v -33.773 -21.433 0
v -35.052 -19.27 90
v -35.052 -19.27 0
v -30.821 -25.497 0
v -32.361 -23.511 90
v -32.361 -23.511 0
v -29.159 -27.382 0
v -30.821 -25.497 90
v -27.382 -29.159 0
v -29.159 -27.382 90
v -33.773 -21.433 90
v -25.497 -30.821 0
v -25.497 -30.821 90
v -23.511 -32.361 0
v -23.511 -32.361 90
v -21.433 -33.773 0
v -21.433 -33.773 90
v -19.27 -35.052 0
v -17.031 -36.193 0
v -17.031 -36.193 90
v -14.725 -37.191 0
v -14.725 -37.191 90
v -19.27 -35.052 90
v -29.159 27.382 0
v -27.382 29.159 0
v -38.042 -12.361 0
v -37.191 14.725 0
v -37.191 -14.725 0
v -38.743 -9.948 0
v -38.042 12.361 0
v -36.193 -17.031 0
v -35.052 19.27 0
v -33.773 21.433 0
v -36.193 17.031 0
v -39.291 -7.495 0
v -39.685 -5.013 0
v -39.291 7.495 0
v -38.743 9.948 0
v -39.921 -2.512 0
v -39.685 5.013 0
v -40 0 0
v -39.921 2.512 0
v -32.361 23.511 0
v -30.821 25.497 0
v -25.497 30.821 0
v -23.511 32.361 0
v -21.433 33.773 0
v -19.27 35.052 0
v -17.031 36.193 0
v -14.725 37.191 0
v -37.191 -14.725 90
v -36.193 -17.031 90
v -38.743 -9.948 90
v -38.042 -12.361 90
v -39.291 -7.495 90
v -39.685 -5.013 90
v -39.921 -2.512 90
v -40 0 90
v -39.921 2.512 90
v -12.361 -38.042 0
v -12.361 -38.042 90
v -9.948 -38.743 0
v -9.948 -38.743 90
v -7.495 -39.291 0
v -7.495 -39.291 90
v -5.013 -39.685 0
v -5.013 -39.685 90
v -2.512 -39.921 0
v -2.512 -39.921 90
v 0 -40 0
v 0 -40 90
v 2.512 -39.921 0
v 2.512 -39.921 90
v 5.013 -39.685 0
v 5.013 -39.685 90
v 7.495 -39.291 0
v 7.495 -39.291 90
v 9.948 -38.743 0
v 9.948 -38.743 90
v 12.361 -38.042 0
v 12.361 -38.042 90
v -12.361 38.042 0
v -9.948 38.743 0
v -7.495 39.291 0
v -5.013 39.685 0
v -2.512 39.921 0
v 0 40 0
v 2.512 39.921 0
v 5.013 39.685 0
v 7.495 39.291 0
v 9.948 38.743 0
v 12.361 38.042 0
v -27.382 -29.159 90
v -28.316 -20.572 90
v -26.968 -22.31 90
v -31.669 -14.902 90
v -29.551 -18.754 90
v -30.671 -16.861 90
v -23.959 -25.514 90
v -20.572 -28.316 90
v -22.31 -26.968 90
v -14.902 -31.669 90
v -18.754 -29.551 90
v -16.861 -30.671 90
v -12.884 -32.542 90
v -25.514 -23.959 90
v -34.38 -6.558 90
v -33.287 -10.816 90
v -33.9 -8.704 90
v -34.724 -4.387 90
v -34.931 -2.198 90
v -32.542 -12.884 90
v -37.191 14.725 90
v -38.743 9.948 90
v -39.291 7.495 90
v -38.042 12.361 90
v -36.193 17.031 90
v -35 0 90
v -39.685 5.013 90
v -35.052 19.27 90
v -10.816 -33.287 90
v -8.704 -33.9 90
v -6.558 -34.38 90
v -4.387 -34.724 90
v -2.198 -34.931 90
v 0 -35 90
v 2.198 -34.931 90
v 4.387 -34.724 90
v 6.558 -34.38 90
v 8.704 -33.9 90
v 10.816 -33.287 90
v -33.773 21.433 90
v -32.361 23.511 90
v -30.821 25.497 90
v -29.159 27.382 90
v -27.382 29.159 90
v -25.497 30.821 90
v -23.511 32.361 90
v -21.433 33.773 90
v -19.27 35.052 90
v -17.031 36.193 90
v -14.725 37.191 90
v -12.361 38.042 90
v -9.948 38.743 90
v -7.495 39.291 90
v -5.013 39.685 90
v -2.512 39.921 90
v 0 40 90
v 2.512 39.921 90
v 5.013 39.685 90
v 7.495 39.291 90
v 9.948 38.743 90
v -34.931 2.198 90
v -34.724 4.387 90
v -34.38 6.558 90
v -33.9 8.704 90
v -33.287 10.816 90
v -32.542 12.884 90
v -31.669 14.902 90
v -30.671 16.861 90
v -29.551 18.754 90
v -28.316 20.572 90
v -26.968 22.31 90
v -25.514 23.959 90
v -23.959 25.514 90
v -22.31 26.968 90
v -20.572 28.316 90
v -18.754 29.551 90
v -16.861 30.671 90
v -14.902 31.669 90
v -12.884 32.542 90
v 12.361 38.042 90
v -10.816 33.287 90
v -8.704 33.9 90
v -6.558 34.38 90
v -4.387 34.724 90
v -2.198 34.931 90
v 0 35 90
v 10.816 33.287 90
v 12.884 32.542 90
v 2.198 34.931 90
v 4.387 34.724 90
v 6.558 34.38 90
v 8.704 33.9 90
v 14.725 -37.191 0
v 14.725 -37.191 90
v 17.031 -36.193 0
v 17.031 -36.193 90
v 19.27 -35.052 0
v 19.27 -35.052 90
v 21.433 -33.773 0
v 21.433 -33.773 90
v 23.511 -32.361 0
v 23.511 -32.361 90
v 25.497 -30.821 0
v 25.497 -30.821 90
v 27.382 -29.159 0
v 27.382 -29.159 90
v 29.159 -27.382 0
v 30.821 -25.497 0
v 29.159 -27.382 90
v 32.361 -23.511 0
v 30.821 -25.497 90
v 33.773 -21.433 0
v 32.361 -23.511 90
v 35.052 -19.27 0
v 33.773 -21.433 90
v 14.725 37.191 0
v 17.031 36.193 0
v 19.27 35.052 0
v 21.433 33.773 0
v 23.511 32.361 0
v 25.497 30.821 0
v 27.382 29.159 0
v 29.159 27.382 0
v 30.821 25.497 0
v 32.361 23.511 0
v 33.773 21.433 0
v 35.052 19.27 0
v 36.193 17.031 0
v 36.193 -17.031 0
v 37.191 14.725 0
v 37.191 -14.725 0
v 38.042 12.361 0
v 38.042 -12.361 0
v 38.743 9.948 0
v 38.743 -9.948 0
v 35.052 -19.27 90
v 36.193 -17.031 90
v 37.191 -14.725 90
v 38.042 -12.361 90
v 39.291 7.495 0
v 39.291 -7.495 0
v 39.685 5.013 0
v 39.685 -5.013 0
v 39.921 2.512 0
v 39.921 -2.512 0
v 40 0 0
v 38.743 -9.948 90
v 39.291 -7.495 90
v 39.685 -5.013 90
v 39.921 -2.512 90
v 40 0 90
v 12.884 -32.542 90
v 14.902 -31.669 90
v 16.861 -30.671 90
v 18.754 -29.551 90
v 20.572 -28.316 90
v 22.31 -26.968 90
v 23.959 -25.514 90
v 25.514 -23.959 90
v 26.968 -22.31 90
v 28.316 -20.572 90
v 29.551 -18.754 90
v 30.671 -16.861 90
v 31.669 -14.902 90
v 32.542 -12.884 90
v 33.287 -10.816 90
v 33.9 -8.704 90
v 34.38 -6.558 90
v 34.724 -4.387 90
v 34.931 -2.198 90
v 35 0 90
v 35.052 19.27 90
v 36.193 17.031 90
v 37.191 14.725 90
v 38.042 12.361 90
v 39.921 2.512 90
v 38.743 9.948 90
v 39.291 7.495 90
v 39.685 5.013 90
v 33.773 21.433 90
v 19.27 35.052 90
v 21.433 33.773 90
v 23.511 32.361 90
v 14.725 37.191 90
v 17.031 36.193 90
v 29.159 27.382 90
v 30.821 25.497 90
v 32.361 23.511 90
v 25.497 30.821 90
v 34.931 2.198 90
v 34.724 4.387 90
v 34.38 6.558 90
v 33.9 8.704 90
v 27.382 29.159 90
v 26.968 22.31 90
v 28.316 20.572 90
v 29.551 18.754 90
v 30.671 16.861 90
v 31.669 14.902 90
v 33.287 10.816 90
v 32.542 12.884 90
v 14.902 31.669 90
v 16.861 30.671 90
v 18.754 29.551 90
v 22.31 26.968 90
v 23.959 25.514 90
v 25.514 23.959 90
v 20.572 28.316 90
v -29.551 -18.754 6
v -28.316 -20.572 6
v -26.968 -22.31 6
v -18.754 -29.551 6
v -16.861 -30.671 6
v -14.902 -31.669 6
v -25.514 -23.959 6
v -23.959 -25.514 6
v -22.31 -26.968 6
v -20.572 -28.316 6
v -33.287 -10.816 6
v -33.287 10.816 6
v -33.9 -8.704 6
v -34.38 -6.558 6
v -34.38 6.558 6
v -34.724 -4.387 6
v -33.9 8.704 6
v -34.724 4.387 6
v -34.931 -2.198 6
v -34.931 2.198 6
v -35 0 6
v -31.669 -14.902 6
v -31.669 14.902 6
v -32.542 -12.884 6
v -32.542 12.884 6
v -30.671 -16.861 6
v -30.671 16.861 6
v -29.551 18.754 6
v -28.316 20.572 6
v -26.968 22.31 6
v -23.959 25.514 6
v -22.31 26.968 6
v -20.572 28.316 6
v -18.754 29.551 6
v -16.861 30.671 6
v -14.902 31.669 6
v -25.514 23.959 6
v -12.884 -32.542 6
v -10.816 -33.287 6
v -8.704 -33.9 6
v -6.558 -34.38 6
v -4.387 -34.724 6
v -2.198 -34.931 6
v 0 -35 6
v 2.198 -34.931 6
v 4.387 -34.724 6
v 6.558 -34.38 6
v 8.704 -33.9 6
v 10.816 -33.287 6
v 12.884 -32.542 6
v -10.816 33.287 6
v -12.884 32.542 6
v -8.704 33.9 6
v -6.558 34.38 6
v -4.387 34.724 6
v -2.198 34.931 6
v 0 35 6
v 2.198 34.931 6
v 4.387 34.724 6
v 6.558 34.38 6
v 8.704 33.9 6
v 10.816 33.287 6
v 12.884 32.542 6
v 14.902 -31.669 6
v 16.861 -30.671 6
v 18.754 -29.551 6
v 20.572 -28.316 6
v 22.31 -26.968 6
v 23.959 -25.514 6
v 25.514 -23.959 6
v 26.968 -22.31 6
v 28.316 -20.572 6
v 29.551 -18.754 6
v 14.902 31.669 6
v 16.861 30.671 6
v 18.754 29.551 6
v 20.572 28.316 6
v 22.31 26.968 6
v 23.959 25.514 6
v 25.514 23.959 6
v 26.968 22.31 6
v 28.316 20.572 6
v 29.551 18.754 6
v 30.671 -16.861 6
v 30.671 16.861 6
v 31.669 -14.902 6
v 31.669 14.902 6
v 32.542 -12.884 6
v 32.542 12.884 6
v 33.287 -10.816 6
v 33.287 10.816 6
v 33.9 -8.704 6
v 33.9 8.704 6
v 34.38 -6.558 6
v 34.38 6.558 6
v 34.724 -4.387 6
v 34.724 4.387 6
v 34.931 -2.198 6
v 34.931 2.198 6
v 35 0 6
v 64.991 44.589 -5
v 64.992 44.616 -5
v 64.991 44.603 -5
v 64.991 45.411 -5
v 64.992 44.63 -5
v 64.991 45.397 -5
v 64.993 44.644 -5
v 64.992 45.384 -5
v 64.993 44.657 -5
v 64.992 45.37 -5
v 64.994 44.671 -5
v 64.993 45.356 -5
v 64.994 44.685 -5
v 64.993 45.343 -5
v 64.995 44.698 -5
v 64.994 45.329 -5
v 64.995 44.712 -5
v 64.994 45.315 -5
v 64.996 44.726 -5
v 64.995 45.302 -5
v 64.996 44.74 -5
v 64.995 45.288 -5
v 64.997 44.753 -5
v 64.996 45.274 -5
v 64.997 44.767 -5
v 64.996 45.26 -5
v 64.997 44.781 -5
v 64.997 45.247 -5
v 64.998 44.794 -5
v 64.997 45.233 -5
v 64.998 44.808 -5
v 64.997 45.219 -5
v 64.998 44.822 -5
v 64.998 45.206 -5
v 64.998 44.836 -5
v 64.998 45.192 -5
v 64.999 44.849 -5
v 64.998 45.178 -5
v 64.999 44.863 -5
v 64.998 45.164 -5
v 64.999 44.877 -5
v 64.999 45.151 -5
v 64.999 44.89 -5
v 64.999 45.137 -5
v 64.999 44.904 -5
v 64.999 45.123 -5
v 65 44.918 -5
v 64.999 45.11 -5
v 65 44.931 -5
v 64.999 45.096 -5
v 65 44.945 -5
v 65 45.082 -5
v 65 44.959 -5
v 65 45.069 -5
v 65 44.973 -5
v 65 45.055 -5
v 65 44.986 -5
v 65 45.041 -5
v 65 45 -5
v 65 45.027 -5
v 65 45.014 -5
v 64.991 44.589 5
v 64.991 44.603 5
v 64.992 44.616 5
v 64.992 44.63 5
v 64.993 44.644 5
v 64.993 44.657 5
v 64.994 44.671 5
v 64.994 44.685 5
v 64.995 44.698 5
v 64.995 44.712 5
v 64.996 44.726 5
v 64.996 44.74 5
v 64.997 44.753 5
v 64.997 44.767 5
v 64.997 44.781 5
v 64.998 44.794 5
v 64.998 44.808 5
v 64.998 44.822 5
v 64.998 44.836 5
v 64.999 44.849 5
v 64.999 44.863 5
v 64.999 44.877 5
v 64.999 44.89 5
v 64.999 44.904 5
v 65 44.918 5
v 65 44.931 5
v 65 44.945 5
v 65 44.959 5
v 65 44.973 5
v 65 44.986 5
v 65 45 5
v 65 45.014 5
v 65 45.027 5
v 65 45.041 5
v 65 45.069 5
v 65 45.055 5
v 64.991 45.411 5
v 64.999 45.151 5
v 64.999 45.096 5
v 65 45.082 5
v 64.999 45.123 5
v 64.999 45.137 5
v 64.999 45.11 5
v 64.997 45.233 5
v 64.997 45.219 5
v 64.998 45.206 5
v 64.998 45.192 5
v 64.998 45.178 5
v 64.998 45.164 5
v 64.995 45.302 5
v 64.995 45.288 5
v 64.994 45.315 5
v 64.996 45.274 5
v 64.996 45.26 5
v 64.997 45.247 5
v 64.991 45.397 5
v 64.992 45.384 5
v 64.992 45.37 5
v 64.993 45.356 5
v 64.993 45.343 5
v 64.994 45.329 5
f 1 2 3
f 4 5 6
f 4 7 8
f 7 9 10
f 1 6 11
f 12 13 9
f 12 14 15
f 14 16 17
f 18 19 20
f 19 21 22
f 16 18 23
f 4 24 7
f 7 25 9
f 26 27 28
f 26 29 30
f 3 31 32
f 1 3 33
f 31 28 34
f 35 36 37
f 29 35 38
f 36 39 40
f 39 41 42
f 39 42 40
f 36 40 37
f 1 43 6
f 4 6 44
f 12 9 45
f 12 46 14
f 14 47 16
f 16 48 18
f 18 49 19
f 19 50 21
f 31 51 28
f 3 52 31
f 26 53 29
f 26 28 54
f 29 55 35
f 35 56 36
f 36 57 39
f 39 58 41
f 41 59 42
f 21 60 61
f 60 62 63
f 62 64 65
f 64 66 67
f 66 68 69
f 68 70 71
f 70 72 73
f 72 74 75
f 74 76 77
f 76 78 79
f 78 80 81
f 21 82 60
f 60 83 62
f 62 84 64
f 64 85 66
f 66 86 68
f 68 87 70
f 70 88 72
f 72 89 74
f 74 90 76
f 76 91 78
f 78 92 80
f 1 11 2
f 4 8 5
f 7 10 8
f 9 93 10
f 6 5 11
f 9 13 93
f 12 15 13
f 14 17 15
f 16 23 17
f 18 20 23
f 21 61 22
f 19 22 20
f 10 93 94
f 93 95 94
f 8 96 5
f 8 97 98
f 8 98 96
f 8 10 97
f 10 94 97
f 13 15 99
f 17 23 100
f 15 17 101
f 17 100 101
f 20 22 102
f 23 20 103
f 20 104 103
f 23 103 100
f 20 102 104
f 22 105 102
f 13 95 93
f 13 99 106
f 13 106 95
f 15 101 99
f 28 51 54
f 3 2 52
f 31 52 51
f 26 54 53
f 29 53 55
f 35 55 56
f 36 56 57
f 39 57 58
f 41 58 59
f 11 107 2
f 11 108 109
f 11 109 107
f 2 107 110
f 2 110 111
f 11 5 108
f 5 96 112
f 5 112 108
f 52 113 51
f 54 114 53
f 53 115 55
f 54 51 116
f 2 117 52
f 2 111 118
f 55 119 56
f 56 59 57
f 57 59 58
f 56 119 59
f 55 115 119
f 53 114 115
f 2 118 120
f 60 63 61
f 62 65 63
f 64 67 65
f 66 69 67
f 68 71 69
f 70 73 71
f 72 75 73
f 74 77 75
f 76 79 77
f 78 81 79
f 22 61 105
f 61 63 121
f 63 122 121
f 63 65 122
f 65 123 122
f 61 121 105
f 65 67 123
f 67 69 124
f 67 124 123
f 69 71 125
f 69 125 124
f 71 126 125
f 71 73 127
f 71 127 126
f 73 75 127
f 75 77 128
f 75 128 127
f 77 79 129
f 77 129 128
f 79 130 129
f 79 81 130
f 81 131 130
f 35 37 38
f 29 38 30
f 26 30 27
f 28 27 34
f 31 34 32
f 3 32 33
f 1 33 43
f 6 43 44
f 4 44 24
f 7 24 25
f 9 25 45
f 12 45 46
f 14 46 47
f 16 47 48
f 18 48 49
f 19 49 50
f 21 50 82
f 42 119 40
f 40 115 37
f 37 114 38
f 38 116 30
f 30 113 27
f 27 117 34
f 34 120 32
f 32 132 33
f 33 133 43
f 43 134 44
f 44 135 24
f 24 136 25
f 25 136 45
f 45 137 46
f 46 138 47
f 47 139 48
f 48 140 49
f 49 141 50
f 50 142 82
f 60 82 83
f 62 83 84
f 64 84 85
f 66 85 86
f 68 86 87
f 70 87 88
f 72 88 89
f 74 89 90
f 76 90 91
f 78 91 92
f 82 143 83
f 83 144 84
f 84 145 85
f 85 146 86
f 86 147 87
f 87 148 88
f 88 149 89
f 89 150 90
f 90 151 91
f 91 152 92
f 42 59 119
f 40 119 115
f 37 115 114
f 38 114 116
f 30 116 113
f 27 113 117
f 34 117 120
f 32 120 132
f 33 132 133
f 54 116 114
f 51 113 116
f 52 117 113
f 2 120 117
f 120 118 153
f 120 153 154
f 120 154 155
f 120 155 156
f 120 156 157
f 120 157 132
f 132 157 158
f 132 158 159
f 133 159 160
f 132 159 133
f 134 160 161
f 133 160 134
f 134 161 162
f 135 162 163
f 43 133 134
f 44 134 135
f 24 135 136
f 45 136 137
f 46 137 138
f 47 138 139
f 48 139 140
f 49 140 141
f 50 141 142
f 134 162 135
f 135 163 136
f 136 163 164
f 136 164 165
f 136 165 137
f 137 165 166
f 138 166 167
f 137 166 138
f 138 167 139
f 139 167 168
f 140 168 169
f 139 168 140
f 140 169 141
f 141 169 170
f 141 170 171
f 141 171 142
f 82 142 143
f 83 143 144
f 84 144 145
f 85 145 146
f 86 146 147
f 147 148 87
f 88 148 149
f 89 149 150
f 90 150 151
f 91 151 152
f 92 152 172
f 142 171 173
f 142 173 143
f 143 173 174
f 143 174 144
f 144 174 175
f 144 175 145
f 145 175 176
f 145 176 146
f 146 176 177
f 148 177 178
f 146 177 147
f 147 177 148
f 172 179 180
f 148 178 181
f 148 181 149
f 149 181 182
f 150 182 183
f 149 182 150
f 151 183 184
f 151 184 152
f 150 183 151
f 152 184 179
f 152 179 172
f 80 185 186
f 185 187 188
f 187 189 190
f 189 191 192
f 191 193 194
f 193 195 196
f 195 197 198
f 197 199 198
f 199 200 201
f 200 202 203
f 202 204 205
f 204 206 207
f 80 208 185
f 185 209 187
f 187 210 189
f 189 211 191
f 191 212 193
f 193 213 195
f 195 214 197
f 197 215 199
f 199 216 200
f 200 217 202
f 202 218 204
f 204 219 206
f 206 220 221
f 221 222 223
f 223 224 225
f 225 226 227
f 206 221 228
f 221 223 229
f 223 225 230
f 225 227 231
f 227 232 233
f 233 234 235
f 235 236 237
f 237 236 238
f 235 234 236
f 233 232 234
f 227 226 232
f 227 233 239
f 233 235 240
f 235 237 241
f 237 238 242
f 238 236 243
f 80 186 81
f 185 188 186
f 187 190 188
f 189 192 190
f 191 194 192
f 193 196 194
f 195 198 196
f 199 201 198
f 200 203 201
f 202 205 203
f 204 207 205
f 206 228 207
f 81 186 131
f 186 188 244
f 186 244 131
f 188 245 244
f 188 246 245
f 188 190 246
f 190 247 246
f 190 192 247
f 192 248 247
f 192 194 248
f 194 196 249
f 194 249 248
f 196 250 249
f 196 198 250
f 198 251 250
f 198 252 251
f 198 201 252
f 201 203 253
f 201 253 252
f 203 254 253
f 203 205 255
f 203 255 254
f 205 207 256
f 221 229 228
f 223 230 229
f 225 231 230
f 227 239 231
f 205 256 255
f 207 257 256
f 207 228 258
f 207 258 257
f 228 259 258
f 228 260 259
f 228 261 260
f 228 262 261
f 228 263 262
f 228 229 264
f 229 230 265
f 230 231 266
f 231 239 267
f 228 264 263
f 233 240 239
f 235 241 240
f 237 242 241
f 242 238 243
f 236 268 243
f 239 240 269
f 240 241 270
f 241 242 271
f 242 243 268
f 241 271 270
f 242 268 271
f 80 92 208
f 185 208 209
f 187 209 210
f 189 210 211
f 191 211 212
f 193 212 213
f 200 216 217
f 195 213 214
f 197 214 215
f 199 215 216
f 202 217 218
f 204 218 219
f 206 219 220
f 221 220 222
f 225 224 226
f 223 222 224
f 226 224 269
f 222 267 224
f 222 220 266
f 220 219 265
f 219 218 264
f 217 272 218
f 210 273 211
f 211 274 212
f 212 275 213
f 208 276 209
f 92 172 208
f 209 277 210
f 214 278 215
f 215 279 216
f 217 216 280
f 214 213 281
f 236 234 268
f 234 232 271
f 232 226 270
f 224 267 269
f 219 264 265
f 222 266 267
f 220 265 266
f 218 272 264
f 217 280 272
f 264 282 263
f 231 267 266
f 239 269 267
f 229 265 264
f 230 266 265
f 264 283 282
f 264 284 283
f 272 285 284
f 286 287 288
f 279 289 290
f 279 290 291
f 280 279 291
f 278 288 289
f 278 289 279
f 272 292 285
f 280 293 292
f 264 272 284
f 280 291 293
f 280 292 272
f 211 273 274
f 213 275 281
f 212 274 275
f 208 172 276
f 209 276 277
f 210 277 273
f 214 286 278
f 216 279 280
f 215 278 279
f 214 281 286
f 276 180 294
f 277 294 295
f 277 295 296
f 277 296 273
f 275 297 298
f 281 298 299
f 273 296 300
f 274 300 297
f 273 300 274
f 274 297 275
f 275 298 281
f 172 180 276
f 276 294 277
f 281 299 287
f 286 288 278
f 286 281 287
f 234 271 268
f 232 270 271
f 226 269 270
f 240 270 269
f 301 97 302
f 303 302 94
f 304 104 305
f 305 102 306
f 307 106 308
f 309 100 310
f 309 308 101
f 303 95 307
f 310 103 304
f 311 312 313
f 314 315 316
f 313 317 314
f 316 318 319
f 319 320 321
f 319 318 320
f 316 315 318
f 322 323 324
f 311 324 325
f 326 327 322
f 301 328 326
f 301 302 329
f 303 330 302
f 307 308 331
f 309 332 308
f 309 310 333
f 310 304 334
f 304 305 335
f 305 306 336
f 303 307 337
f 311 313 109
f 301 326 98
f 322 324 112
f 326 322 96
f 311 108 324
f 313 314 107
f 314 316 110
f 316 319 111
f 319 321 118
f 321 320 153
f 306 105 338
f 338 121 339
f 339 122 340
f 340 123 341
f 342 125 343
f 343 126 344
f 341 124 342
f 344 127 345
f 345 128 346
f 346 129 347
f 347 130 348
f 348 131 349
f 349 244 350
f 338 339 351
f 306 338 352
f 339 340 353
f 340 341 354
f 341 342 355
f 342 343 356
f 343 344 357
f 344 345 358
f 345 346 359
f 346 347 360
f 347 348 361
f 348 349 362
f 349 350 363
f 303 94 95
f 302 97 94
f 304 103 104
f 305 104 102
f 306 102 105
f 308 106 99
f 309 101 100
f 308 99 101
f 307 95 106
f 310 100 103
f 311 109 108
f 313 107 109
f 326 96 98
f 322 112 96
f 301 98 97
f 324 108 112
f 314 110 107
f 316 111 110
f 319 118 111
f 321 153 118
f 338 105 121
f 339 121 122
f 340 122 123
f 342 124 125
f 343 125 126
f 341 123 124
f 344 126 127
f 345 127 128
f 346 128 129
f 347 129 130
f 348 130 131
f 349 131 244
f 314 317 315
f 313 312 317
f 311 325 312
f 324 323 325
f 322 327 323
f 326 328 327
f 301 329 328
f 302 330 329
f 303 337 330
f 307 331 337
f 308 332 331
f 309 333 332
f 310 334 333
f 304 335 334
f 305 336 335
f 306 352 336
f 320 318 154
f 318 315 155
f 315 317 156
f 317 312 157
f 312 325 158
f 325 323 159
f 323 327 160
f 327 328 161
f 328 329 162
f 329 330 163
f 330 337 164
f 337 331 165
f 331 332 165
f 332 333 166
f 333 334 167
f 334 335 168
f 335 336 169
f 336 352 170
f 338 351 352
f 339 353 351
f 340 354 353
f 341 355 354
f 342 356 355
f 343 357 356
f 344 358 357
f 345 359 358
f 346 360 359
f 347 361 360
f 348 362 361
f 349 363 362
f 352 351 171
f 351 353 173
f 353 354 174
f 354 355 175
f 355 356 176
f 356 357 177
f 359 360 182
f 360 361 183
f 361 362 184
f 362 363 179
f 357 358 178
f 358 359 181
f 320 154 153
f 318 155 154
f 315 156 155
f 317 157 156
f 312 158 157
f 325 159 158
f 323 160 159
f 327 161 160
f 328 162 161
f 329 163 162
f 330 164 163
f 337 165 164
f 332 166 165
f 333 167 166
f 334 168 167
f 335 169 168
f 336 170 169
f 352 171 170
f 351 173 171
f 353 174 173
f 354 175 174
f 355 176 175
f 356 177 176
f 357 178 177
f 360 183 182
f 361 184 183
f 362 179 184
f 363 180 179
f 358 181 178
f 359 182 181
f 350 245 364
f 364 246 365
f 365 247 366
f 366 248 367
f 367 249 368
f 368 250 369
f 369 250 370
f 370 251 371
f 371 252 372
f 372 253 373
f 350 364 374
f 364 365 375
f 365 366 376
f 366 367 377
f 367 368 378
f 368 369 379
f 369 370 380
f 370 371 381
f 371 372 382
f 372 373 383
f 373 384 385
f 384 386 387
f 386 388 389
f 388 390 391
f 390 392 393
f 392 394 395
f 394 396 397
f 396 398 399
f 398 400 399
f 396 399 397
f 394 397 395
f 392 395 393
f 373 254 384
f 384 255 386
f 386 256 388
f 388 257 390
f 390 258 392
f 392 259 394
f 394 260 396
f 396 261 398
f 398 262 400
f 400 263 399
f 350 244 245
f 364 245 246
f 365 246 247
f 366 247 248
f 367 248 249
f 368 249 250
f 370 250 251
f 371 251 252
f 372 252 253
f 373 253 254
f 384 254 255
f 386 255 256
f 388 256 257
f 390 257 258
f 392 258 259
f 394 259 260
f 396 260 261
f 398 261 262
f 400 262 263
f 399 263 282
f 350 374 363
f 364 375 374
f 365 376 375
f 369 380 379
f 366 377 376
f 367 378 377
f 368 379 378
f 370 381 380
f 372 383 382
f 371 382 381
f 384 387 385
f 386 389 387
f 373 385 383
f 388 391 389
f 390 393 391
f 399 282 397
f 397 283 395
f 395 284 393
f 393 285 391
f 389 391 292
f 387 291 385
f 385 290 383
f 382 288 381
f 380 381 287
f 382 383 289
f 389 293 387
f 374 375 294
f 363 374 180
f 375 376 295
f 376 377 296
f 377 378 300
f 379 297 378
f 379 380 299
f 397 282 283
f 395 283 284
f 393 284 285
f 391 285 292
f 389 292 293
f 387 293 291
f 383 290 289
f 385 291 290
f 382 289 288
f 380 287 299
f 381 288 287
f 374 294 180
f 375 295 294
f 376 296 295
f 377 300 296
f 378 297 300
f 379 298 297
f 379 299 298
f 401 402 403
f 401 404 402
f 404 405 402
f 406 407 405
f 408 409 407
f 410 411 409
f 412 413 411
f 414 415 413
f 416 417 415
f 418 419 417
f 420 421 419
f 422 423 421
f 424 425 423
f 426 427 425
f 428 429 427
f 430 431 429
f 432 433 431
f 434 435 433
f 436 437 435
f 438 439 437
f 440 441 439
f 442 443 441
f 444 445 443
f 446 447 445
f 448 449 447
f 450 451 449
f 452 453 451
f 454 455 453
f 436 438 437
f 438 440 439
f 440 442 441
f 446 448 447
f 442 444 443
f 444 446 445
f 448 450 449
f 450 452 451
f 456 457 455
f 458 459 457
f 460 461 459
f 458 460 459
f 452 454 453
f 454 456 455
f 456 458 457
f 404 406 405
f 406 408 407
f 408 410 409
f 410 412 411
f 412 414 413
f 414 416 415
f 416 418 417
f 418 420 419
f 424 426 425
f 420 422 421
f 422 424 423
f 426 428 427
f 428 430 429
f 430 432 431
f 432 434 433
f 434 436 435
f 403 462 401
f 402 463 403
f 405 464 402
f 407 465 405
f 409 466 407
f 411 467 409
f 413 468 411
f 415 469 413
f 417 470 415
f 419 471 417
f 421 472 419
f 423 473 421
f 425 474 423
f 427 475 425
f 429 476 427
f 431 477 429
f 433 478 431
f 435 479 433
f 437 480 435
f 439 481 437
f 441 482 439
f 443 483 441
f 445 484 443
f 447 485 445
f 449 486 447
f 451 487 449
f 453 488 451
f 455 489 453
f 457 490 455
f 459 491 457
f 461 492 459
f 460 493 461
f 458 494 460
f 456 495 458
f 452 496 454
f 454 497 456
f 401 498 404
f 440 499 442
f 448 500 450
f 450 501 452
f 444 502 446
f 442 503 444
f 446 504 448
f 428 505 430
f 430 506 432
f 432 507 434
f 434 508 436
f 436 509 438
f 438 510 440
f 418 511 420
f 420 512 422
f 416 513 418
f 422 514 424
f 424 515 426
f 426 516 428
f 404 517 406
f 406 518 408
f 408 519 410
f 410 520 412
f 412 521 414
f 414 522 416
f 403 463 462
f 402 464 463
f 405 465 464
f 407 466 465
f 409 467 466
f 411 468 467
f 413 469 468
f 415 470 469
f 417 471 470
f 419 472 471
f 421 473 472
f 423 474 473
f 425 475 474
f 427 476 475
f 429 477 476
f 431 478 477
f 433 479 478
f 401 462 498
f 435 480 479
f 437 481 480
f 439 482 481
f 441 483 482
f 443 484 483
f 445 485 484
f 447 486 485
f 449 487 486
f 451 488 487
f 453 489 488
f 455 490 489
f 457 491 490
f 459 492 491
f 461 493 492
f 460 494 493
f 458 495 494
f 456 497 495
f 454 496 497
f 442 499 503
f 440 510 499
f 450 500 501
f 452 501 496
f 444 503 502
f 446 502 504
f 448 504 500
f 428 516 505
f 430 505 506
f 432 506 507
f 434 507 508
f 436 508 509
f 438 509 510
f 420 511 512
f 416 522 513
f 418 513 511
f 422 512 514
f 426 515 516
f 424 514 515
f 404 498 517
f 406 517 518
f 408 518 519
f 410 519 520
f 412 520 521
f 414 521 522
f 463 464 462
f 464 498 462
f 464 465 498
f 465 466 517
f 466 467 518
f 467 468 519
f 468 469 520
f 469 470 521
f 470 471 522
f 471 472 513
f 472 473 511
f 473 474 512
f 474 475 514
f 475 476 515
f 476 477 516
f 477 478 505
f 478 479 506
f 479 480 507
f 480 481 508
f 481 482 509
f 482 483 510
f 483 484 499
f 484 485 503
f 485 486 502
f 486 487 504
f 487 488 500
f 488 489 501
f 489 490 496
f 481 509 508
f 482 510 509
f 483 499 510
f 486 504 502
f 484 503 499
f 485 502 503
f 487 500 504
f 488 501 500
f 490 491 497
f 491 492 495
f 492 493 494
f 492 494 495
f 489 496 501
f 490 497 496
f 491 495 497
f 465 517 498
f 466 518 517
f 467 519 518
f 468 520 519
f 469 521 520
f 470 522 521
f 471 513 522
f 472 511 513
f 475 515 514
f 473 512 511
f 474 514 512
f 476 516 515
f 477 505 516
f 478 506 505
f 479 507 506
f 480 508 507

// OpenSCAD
$fn = 100;

module mug() {
    difference() {
        // 外筒
        cylinder(d = 80, h = 90);
        // 飲み口内側
        translate([0, 0, 6])
            cylinder(d = 70, h = 84);
    }
}

module handle() {
    // 取手断面を2Dポリゴンで作成し、Y方向に押し出す
    linear_extrude(height = 10, center = true) {
        polygon(points = [
            for (i = [-90 : 3 : 90])
                [ 40 + 25 * cos(i * PI/180), 45 + 15 * sin(i * PI/180) ]
        ]);
    }
}

union() {
    mug();
    handle();
}
